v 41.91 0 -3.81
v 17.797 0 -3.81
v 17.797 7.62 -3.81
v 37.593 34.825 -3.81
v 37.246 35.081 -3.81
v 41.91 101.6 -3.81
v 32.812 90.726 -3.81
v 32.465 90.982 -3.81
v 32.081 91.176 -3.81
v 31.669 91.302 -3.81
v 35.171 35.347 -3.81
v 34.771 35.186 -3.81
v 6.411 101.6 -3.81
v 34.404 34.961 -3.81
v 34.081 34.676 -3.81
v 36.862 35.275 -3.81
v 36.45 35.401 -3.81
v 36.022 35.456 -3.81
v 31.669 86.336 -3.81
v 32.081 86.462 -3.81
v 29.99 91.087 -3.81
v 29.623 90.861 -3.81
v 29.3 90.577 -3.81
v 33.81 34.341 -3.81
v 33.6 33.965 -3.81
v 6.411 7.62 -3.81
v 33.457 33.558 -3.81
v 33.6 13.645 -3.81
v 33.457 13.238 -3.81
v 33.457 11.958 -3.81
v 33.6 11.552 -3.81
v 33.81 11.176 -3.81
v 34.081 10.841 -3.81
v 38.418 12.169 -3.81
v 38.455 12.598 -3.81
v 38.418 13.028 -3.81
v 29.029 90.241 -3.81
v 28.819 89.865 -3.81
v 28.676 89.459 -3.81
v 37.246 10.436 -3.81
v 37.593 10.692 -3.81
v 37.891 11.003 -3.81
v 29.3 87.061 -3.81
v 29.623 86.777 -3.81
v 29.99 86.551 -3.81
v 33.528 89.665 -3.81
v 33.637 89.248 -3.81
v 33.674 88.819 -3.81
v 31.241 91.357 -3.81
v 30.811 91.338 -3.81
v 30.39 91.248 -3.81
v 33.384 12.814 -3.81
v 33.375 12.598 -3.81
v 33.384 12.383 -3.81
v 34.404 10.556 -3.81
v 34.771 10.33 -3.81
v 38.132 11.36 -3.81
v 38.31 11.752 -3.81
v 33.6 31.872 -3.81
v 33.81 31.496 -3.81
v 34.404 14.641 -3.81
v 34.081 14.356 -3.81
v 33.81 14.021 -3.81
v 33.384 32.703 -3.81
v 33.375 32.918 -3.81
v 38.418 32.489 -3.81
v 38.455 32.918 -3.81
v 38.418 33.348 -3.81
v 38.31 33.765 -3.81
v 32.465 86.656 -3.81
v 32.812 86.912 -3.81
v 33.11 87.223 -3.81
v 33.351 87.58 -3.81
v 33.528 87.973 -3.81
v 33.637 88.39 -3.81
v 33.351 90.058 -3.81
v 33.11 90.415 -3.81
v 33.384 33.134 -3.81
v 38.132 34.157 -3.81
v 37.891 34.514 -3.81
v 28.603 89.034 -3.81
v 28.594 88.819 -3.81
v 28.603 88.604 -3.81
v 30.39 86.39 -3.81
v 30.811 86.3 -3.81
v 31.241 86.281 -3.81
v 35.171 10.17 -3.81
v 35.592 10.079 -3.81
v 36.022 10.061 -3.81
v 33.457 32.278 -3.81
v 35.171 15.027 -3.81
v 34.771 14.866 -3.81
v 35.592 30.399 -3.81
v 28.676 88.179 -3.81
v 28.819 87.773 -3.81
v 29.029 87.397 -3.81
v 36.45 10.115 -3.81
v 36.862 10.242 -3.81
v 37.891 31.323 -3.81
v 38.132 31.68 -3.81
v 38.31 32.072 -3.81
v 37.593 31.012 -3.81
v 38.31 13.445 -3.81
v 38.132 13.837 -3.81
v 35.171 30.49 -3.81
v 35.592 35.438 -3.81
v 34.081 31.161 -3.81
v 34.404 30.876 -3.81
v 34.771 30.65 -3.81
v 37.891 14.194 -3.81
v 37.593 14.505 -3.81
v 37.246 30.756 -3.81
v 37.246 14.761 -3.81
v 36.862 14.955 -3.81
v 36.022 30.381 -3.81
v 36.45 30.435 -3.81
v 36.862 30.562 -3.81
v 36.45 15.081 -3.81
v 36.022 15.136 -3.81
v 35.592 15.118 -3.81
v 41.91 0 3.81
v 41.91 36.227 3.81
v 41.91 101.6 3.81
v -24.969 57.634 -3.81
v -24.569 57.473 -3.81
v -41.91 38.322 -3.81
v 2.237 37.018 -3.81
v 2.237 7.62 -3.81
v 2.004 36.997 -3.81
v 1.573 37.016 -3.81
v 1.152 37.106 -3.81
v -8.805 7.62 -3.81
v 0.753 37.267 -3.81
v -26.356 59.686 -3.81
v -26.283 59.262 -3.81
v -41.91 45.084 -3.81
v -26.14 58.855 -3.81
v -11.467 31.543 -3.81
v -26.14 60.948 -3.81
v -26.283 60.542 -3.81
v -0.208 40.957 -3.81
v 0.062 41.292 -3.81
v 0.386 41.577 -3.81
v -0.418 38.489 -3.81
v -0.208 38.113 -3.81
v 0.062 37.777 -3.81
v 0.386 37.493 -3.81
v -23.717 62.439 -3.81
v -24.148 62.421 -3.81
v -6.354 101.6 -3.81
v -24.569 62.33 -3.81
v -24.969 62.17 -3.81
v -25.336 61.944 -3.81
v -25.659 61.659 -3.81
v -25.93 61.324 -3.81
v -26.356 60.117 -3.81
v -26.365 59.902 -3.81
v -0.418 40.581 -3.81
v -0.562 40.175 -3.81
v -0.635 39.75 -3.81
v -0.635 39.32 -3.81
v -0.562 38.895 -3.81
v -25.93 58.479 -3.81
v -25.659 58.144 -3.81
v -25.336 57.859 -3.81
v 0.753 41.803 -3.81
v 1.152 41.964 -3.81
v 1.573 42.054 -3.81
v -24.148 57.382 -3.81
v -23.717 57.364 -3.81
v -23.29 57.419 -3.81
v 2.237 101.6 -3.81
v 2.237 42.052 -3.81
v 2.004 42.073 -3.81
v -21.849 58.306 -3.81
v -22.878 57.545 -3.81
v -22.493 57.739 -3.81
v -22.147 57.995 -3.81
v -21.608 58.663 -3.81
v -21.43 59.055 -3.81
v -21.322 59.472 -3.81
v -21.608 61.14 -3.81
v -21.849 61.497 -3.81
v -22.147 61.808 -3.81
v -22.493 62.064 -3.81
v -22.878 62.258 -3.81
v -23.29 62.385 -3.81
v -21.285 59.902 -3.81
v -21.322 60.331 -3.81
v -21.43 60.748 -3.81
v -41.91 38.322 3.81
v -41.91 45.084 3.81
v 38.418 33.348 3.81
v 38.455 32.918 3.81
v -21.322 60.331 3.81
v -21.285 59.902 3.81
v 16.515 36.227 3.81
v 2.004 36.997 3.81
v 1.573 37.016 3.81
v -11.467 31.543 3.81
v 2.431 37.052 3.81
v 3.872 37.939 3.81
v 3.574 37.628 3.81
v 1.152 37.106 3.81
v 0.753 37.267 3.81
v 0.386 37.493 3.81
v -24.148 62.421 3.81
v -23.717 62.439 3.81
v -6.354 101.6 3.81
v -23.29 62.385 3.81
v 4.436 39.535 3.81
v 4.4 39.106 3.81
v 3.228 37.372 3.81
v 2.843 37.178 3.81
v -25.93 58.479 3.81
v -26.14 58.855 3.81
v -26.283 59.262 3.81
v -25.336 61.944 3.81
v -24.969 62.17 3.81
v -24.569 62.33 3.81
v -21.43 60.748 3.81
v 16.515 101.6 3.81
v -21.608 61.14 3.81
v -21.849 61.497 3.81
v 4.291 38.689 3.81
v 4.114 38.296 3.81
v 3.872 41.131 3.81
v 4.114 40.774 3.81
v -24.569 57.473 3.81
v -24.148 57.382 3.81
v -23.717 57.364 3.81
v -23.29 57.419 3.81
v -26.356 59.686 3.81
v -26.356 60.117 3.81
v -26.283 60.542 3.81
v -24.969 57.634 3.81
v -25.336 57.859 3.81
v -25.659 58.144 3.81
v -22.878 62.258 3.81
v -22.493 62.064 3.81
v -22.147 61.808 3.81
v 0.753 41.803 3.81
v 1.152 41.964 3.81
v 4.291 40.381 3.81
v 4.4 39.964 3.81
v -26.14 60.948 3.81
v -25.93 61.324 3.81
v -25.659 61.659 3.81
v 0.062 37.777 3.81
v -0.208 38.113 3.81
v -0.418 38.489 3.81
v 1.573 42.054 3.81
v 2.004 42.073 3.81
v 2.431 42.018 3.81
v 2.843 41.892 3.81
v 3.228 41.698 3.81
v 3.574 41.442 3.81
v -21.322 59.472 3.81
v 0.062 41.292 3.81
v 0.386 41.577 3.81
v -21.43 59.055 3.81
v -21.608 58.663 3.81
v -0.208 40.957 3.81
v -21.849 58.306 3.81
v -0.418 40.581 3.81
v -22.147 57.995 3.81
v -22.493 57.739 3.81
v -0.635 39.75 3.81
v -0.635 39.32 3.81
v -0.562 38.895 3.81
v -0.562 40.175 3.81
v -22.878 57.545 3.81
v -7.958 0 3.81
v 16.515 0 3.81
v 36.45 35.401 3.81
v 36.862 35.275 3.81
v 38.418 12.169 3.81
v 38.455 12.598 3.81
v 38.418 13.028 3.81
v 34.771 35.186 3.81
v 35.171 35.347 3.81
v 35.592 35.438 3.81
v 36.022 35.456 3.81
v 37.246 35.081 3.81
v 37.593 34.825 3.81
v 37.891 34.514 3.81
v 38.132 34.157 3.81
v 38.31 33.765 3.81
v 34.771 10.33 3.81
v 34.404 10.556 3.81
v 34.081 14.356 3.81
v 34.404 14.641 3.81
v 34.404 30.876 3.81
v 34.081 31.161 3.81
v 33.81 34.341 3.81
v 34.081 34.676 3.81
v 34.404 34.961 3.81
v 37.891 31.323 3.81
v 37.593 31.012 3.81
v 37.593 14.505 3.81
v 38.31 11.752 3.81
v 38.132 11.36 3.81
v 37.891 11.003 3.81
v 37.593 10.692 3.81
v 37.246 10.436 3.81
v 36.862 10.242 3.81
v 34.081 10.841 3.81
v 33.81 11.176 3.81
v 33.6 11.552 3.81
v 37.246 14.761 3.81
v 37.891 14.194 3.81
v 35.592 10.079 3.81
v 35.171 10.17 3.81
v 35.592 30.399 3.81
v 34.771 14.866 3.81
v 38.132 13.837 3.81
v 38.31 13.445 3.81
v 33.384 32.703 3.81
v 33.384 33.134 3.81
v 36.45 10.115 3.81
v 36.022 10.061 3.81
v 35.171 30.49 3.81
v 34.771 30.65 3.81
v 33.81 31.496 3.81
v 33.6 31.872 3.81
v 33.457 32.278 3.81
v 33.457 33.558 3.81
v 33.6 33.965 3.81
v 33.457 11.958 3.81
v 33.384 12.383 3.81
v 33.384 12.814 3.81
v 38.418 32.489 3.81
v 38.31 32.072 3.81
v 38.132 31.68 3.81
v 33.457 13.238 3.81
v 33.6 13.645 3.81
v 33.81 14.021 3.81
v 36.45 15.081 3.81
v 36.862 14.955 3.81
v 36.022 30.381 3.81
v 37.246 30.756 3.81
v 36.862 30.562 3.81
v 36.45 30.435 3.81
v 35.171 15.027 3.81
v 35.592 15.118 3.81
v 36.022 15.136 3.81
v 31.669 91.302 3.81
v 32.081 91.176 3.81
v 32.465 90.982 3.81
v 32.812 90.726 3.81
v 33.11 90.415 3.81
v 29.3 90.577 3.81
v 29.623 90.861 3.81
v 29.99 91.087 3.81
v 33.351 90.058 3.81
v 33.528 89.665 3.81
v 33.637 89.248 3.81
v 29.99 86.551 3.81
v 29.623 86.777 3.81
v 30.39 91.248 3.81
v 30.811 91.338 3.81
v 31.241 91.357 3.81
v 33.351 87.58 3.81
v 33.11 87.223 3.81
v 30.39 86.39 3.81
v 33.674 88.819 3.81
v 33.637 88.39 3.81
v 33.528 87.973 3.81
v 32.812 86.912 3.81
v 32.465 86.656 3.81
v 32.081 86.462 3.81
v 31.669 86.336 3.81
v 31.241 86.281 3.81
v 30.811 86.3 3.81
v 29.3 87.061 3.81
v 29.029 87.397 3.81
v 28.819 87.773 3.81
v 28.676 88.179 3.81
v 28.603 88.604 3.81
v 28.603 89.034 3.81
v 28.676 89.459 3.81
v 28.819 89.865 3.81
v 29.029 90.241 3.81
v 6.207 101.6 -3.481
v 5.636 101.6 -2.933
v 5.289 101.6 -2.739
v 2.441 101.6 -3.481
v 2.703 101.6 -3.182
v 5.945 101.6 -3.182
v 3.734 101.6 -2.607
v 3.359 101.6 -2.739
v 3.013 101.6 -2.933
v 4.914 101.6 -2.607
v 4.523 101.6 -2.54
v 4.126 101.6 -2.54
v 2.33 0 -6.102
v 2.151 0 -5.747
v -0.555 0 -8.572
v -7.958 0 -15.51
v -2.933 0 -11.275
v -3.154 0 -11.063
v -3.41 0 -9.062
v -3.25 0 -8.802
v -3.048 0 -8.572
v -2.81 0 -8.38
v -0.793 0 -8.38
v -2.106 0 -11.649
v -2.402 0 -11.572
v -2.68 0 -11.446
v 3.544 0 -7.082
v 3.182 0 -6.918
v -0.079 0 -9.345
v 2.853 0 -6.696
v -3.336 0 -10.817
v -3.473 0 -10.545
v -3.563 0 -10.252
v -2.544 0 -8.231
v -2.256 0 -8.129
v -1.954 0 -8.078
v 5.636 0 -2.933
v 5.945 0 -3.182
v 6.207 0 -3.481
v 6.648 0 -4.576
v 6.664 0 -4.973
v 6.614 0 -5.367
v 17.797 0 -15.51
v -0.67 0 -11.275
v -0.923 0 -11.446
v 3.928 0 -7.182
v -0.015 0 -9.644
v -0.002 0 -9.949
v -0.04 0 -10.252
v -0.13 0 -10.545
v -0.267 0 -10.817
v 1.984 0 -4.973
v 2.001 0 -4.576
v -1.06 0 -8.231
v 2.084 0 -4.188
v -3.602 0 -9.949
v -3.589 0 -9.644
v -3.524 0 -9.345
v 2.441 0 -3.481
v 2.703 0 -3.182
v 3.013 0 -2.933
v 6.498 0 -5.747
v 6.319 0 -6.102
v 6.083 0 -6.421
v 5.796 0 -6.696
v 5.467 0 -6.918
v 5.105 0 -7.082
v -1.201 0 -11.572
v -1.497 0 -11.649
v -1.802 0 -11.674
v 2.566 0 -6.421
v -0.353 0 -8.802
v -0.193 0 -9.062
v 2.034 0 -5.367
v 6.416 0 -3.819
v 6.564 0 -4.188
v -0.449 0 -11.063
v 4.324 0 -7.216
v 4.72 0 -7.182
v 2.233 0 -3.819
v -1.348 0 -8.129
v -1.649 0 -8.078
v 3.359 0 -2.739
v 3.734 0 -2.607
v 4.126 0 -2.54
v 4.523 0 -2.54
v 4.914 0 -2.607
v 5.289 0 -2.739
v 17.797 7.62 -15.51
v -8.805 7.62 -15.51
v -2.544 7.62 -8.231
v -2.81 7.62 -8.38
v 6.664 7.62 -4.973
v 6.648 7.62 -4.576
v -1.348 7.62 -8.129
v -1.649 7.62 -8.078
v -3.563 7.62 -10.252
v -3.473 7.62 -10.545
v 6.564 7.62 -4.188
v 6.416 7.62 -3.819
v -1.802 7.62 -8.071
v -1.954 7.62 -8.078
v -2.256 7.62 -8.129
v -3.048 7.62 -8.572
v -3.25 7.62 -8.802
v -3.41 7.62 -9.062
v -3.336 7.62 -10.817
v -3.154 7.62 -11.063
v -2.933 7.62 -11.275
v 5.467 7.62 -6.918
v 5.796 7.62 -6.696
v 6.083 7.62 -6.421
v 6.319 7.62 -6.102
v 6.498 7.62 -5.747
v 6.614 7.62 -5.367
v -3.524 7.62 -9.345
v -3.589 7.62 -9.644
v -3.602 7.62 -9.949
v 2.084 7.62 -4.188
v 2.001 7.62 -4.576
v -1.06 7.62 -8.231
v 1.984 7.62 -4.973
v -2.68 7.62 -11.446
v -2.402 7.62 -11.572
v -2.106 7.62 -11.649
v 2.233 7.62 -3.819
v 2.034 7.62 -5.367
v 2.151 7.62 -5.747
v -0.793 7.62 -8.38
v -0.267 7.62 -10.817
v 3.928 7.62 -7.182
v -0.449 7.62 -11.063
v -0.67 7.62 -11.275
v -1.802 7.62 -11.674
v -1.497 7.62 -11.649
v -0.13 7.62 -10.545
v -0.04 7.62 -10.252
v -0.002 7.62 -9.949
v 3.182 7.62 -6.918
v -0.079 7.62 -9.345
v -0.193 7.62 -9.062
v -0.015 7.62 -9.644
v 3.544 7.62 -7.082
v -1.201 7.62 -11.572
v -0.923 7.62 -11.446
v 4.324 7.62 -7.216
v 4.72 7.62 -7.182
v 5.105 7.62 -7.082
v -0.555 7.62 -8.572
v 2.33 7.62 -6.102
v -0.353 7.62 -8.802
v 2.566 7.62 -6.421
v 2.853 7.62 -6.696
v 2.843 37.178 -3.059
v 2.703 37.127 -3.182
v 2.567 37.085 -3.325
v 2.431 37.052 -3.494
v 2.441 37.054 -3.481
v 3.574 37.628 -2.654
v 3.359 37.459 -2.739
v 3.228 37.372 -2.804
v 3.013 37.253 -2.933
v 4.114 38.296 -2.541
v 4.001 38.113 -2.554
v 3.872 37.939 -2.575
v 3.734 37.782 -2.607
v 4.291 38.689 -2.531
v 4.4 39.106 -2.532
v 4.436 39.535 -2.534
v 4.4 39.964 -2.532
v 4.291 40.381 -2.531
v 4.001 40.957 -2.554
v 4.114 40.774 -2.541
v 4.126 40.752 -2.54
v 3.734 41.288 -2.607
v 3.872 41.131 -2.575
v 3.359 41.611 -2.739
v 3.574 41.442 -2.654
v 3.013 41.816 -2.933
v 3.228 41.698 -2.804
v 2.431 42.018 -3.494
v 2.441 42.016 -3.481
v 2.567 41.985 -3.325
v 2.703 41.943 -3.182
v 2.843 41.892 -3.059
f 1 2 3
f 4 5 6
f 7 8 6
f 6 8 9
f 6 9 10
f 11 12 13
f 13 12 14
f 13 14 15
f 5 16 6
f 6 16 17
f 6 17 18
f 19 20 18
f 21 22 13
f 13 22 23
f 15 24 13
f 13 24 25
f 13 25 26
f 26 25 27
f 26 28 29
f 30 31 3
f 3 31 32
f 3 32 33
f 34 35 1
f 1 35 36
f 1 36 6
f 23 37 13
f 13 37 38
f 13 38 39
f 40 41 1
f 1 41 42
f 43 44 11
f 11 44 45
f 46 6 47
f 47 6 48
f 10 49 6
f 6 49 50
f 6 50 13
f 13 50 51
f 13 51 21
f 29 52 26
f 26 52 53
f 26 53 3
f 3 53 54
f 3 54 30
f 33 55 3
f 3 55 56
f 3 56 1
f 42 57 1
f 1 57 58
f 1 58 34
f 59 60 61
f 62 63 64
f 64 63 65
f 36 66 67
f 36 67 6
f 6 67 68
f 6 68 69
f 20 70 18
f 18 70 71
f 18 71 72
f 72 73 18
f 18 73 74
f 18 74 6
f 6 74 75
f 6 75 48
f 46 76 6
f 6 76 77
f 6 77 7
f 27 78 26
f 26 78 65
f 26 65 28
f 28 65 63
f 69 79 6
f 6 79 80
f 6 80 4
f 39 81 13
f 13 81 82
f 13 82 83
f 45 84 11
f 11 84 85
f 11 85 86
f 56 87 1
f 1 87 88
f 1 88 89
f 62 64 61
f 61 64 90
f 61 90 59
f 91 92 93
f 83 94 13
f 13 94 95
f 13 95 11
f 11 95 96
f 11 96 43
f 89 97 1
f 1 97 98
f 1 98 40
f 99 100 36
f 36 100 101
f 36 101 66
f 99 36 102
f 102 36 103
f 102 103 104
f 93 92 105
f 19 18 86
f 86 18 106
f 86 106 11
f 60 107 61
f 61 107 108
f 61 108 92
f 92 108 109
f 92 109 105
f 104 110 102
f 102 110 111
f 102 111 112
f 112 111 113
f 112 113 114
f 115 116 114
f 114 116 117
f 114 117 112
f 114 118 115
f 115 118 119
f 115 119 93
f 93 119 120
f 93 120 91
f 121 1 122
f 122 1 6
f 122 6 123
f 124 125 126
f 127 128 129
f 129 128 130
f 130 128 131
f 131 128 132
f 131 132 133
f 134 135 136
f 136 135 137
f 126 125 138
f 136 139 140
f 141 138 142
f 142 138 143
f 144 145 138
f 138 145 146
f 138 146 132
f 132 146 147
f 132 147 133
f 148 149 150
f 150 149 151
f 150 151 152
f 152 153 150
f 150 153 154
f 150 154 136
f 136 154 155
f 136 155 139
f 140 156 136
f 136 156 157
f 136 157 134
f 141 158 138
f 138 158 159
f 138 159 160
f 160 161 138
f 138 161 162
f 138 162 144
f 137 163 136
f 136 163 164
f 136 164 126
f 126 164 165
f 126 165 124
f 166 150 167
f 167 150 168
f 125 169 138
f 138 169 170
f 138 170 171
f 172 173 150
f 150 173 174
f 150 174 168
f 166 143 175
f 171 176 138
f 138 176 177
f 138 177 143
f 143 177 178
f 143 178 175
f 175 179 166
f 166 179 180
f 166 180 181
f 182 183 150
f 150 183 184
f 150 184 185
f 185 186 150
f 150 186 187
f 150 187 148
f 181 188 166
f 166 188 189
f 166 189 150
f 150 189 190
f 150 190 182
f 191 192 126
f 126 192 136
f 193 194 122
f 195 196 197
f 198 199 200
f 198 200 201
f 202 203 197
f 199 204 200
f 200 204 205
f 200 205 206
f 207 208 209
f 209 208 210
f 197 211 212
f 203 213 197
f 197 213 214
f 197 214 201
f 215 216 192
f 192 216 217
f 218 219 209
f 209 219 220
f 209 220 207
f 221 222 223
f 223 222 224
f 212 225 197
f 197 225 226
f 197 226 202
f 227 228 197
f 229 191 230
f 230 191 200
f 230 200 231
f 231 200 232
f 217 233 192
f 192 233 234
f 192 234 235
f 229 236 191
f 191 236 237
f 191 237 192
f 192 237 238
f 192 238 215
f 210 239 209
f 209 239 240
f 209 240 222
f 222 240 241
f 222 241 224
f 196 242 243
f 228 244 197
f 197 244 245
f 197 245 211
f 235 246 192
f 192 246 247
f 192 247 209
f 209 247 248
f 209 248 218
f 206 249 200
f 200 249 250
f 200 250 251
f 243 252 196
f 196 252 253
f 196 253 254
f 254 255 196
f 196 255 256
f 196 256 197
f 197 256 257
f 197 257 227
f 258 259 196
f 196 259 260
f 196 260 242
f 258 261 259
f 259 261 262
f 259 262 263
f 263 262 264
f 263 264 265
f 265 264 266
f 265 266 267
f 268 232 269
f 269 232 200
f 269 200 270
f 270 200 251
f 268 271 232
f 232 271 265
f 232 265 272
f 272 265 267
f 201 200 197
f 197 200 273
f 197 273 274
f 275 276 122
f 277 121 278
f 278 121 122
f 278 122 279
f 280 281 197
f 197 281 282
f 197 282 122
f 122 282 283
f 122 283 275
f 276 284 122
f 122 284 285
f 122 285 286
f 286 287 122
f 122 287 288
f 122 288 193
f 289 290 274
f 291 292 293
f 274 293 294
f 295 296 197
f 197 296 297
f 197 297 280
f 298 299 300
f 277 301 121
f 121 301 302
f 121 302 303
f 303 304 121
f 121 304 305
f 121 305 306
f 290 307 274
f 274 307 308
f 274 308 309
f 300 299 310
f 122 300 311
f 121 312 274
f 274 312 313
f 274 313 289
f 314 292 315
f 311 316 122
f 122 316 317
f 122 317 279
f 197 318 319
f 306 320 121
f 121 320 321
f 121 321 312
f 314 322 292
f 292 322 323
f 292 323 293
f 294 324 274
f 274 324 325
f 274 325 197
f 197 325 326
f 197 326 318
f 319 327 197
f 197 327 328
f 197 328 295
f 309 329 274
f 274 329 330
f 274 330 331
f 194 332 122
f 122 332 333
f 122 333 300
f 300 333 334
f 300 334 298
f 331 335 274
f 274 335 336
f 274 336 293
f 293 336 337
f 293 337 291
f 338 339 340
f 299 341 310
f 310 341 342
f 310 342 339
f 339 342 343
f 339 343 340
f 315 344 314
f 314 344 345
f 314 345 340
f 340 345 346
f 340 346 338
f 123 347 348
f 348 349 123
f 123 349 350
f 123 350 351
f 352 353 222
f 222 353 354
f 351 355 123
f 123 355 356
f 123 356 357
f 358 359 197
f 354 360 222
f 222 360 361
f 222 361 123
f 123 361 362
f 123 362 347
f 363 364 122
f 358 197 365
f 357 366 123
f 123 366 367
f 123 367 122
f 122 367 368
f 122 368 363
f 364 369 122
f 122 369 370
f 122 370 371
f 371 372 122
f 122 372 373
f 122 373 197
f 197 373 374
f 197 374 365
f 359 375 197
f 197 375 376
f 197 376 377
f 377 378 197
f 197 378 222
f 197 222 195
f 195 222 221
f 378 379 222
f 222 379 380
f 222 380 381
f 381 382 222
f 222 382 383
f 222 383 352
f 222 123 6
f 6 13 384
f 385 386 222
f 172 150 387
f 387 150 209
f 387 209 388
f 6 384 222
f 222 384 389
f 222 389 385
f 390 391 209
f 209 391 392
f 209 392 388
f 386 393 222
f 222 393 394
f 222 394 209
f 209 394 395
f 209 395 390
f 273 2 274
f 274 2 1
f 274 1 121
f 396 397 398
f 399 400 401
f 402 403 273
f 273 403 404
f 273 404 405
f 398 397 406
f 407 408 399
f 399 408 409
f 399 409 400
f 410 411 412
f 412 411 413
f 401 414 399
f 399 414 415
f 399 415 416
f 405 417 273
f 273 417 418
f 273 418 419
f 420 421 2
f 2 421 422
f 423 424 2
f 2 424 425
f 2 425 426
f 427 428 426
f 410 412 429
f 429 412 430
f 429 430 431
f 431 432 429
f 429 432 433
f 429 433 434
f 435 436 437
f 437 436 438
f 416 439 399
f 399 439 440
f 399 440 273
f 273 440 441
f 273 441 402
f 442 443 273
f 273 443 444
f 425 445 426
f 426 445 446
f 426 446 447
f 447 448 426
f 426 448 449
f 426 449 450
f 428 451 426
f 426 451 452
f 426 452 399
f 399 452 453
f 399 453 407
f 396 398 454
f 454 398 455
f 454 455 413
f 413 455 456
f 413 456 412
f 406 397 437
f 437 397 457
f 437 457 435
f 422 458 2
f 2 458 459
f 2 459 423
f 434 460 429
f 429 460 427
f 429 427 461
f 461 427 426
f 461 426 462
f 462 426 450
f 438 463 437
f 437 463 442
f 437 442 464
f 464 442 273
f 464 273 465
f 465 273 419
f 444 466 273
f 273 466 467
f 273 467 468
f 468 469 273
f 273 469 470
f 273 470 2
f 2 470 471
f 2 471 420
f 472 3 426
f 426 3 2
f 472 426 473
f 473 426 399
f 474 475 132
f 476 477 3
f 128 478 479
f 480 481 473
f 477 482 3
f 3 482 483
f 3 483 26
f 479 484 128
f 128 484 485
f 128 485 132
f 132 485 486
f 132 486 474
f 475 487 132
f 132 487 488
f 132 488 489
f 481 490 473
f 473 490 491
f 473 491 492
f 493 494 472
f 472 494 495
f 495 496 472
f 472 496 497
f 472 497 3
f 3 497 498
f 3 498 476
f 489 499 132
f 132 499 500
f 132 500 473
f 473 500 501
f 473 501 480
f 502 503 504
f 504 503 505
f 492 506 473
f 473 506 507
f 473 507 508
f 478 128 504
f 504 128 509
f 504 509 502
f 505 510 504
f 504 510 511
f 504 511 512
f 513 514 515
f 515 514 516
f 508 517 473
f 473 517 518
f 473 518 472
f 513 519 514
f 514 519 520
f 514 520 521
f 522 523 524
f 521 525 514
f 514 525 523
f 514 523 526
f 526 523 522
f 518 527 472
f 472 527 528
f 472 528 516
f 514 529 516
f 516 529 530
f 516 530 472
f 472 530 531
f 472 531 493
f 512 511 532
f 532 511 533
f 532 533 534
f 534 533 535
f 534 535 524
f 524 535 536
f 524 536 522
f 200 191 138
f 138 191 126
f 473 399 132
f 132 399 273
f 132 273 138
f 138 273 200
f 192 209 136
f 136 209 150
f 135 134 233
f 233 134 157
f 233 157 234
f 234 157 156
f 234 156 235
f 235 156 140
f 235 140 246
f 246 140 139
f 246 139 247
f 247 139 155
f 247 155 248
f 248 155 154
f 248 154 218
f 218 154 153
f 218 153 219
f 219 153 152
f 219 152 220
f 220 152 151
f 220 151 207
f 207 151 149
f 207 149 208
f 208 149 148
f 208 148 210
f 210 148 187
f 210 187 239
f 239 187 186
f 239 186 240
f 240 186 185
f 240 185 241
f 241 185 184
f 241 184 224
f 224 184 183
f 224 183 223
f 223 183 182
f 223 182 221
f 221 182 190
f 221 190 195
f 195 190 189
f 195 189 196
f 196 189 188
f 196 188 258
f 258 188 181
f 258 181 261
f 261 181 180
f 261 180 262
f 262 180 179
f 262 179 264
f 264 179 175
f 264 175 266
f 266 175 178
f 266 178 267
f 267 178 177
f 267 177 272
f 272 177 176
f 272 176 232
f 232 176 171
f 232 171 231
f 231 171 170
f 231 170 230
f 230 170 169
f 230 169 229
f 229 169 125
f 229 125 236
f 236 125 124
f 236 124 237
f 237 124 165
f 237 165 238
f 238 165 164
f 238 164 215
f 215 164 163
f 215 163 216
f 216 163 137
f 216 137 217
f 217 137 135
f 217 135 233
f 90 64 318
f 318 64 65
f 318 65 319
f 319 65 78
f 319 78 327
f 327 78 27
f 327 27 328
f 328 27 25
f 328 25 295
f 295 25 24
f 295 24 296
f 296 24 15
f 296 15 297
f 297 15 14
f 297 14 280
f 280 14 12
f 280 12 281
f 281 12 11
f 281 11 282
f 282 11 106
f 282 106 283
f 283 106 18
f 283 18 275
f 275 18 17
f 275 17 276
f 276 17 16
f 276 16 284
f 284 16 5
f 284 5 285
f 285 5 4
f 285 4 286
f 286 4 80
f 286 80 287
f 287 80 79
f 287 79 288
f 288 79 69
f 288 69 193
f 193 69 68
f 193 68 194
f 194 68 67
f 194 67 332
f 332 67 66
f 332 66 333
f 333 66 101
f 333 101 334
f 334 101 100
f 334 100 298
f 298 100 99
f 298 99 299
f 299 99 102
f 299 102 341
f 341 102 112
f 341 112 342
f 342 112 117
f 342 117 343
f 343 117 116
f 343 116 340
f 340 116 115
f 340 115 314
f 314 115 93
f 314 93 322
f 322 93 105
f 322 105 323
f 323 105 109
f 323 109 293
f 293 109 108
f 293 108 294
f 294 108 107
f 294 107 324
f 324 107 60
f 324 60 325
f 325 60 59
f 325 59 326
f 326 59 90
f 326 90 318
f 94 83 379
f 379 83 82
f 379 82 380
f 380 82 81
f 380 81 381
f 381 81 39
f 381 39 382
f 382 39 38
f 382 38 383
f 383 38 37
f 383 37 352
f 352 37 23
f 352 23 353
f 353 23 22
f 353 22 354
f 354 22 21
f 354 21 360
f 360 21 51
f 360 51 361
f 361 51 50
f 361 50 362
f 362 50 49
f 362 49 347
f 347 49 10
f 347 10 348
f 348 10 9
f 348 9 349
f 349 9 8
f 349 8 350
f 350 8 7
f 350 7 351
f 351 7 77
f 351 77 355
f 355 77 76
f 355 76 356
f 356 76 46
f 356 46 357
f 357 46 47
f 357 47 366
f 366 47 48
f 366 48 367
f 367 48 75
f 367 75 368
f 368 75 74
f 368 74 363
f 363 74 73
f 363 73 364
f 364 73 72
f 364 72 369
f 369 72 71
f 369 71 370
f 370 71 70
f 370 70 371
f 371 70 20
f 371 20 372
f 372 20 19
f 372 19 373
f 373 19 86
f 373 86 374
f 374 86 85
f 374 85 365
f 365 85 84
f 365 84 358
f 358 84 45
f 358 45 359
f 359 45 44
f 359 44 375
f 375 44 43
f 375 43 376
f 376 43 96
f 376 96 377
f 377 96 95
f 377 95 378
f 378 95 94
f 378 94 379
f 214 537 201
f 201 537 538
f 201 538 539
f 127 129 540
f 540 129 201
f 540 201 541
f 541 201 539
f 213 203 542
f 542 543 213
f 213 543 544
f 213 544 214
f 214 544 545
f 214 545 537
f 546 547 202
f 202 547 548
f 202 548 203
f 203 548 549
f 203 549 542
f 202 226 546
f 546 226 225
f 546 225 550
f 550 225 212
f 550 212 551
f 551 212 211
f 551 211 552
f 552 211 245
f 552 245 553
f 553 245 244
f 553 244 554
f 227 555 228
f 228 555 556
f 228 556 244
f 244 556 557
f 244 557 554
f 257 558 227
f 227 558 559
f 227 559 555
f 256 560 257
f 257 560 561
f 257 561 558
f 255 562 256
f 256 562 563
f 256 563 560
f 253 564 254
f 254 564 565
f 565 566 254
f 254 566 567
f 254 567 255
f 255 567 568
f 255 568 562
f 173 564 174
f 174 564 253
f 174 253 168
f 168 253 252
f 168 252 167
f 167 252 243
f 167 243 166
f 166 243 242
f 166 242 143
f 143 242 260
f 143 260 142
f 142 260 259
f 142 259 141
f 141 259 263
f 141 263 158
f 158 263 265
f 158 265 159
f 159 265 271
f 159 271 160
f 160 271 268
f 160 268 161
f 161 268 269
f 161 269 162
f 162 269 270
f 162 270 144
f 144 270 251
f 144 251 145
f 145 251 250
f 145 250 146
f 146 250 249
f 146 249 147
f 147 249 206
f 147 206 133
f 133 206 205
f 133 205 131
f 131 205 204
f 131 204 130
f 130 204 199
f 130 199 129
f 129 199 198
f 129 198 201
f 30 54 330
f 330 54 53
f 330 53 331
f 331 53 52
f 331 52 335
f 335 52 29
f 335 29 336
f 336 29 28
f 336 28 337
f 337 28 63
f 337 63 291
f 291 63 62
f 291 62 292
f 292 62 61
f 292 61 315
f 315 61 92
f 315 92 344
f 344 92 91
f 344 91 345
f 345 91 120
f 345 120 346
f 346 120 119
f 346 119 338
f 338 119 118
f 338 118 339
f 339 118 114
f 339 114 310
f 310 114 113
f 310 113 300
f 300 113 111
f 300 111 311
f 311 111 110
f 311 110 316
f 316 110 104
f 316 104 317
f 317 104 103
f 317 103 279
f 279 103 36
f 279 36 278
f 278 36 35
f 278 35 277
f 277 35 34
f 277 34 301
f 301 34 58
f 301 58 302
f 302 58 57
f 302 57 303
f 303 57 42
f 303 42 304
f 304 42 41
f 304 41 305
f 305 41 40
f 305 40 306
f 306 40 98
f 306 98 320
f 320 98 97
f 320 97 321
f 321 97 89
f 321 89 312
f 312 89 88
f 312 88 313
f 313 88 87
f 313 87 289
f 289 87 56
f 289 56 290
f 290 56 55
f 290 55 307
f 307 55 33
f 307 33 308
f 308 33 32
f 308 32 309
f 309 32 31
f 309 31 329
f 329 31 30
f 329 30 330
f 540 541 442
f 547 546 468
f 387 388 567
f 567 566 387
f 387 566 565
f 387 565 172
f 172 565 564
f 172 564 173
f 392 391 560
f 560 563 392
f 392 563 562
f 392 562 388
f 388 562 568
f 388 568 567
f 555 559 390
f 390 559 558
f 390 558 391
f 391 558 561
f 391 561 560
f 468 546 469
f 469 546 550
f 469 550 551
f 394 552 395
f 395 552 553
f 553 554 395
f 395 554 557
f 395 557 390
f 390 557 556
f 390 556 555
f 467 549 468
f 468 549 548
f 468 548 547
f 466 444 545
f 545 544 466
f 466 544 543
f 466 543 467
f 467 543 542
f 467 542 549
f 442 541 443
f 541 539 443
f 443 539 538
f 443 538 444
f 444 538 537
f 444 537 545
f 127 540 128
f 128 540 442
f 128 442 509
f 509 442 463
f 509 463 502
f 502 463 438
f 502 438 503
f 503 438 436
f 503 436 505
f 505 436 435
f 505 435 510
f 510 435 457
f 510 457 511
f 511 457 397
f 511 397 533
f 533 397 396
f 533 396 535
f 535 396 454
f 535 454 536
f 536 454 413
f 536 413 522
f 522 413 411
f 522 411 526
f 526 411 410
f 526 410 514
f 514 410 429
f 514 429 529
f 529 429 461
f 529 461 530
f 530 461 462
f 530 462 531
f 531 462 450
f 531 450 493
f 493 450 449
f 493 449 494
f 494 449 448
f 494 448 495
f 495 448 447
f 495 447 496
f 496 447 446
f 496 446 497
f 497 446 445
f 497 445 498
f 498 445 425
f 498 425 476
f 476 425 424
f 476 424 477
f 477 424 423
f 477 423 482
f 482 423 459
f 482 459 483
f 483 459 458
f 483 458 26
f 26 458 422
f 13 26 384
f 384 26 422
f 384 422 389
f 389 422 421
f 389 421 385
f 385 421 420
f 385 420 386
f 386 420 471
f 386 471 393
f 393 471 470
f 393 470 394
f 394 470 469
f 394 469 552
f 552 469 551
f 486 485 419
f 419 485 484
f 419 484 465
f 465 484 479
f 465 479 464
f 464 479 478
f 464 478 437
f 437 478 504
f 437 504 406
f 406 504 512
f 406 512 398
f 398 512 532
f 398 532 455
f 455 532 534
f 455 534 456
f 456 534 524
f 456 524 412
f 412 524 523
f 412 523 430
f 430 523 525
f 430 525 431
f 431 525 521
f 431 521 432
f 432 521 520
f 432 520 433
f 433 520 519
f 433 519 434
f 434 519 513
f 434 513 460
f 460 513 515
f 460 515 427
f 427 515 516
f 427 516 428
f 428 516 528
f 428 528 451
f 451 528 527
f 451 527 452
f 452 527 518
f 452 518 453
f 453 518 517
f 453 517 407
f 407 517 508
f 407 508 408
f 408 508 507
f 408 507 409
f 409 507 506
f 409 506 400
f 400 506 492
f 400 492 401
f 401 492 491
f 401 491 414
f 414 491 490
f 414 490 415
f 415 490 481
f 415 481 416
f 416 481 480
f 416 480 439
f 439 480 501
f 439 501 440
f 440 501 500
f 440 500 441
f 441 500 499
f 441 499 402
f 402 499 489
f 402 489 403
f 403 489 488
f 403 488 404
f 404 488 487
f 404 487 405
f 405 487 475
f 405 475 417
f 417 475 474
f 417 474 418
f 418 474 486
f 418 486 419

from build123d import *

# Parameters (mm, degrees)
BOSS_EXTRUDE1_DEPTH = 101.6
SKETCH1_3_W         = 36.399658141
SKETCH1_3_H         = 11.700173665
BOSS_EXTRUDE2_DEPTH = 7.62
SKETCH2_R           = 2.54
CUT_EXTRUDE1_DEPTH  = 112.58977198
SKETCH4_R           = 2.342393744
SKETCH4_R_2         = 1.801613949
SKETCH4_R_3         = 2.035024278
SKETCH4_R_4         = 2.216848317
CUT_EXTRUDE2_DEPTH  = 111.993574531


with BuildPart() as part:
    # Sketch1 → Boss-Extrude1 (new body)
    with BuildSketch(Plane(origin=(0, 0, 0), x_dir=(1, 0, 0), z_dir=(0, 1, 0))):
        Polygon((-41.91, -3.81), (-18.602457664, -3.81), (17.797200477, -3.81), (41.91, -3.81), (41.91, 3.81), (17.797200477, 3.81), (-18.602457664, 3.81), (-41.91, 3.81), align=None)
    extrude(amount=BOSS_EXTRUDE1_DEPTH)

    # Sketch1<3> → Boss-Extrude2 (add)
    with BuildSketch(Plane(origin=(0, 0, 0), x_dir=(1, 0, 0), z_dir=(0, 1, 0))):
        with Locations((-0.402628594, 9.660086833)):
            Rectangle(SKETCH1_3_W, SKETCH1_3_H)
    extrude(amount=BOSS_EXTRUDE2_DEPTH)

    # Sketch2 → Cut-Extrude1 (cut, through all)
    with BuildSketch(Plane.XY.offset(3.81)):
        with Locations((-23.8252, 59.901607654)):
            Circle(SKETCH2_R)
        with Locations((31.13358591, 88.819007782)):
            Circle(SKETCH2_R)
        with Locations((1.896113018, 39.534948803)):
            Circle(SKETCH2_R)
        with Locations((35.914623783, 12.5984)):
            Circle(SKETCH2_R)
        with Locations((35.914623783, 32.9184)):
            Circle(SKETCH2_R)
        Polygon((-41.91, 45.084065347), (-6.353580499, 101.6), (-41.91, 101.6), align=None)
        Polygon((-41.91, 38.321571432), (-11.466633524, 31.542928235), (-7.95768881, 0), (-41.91, 0), align=None)
    extrude(amount=-CUT_EXTRUDE1_DEPTH, mode=Mode.SUBTRACT)

    # Sketch4 → Cut-Extrude2 (cut, through all)
    with BuildSketch(Plane.XZ):
        with Locations((4.32420412, -4.873516041)):
            Circle(SKETCH4_R)
        with Locations((-1.801613949, -9.872883882)):
            Circle(SKETCH4_R_2)
        with Locations((-11.131176948, -7.373516021)):
            Circle(SKETCH4_R_3)
        with Locations((-14.801613949, -10.542756863)):
            Circle(SKETCH4_R_4)
    extrude(amount=-CUT_EXTRUDE2_DEPTH, mode=Mode.SUBTRACT)


solid = part.part
